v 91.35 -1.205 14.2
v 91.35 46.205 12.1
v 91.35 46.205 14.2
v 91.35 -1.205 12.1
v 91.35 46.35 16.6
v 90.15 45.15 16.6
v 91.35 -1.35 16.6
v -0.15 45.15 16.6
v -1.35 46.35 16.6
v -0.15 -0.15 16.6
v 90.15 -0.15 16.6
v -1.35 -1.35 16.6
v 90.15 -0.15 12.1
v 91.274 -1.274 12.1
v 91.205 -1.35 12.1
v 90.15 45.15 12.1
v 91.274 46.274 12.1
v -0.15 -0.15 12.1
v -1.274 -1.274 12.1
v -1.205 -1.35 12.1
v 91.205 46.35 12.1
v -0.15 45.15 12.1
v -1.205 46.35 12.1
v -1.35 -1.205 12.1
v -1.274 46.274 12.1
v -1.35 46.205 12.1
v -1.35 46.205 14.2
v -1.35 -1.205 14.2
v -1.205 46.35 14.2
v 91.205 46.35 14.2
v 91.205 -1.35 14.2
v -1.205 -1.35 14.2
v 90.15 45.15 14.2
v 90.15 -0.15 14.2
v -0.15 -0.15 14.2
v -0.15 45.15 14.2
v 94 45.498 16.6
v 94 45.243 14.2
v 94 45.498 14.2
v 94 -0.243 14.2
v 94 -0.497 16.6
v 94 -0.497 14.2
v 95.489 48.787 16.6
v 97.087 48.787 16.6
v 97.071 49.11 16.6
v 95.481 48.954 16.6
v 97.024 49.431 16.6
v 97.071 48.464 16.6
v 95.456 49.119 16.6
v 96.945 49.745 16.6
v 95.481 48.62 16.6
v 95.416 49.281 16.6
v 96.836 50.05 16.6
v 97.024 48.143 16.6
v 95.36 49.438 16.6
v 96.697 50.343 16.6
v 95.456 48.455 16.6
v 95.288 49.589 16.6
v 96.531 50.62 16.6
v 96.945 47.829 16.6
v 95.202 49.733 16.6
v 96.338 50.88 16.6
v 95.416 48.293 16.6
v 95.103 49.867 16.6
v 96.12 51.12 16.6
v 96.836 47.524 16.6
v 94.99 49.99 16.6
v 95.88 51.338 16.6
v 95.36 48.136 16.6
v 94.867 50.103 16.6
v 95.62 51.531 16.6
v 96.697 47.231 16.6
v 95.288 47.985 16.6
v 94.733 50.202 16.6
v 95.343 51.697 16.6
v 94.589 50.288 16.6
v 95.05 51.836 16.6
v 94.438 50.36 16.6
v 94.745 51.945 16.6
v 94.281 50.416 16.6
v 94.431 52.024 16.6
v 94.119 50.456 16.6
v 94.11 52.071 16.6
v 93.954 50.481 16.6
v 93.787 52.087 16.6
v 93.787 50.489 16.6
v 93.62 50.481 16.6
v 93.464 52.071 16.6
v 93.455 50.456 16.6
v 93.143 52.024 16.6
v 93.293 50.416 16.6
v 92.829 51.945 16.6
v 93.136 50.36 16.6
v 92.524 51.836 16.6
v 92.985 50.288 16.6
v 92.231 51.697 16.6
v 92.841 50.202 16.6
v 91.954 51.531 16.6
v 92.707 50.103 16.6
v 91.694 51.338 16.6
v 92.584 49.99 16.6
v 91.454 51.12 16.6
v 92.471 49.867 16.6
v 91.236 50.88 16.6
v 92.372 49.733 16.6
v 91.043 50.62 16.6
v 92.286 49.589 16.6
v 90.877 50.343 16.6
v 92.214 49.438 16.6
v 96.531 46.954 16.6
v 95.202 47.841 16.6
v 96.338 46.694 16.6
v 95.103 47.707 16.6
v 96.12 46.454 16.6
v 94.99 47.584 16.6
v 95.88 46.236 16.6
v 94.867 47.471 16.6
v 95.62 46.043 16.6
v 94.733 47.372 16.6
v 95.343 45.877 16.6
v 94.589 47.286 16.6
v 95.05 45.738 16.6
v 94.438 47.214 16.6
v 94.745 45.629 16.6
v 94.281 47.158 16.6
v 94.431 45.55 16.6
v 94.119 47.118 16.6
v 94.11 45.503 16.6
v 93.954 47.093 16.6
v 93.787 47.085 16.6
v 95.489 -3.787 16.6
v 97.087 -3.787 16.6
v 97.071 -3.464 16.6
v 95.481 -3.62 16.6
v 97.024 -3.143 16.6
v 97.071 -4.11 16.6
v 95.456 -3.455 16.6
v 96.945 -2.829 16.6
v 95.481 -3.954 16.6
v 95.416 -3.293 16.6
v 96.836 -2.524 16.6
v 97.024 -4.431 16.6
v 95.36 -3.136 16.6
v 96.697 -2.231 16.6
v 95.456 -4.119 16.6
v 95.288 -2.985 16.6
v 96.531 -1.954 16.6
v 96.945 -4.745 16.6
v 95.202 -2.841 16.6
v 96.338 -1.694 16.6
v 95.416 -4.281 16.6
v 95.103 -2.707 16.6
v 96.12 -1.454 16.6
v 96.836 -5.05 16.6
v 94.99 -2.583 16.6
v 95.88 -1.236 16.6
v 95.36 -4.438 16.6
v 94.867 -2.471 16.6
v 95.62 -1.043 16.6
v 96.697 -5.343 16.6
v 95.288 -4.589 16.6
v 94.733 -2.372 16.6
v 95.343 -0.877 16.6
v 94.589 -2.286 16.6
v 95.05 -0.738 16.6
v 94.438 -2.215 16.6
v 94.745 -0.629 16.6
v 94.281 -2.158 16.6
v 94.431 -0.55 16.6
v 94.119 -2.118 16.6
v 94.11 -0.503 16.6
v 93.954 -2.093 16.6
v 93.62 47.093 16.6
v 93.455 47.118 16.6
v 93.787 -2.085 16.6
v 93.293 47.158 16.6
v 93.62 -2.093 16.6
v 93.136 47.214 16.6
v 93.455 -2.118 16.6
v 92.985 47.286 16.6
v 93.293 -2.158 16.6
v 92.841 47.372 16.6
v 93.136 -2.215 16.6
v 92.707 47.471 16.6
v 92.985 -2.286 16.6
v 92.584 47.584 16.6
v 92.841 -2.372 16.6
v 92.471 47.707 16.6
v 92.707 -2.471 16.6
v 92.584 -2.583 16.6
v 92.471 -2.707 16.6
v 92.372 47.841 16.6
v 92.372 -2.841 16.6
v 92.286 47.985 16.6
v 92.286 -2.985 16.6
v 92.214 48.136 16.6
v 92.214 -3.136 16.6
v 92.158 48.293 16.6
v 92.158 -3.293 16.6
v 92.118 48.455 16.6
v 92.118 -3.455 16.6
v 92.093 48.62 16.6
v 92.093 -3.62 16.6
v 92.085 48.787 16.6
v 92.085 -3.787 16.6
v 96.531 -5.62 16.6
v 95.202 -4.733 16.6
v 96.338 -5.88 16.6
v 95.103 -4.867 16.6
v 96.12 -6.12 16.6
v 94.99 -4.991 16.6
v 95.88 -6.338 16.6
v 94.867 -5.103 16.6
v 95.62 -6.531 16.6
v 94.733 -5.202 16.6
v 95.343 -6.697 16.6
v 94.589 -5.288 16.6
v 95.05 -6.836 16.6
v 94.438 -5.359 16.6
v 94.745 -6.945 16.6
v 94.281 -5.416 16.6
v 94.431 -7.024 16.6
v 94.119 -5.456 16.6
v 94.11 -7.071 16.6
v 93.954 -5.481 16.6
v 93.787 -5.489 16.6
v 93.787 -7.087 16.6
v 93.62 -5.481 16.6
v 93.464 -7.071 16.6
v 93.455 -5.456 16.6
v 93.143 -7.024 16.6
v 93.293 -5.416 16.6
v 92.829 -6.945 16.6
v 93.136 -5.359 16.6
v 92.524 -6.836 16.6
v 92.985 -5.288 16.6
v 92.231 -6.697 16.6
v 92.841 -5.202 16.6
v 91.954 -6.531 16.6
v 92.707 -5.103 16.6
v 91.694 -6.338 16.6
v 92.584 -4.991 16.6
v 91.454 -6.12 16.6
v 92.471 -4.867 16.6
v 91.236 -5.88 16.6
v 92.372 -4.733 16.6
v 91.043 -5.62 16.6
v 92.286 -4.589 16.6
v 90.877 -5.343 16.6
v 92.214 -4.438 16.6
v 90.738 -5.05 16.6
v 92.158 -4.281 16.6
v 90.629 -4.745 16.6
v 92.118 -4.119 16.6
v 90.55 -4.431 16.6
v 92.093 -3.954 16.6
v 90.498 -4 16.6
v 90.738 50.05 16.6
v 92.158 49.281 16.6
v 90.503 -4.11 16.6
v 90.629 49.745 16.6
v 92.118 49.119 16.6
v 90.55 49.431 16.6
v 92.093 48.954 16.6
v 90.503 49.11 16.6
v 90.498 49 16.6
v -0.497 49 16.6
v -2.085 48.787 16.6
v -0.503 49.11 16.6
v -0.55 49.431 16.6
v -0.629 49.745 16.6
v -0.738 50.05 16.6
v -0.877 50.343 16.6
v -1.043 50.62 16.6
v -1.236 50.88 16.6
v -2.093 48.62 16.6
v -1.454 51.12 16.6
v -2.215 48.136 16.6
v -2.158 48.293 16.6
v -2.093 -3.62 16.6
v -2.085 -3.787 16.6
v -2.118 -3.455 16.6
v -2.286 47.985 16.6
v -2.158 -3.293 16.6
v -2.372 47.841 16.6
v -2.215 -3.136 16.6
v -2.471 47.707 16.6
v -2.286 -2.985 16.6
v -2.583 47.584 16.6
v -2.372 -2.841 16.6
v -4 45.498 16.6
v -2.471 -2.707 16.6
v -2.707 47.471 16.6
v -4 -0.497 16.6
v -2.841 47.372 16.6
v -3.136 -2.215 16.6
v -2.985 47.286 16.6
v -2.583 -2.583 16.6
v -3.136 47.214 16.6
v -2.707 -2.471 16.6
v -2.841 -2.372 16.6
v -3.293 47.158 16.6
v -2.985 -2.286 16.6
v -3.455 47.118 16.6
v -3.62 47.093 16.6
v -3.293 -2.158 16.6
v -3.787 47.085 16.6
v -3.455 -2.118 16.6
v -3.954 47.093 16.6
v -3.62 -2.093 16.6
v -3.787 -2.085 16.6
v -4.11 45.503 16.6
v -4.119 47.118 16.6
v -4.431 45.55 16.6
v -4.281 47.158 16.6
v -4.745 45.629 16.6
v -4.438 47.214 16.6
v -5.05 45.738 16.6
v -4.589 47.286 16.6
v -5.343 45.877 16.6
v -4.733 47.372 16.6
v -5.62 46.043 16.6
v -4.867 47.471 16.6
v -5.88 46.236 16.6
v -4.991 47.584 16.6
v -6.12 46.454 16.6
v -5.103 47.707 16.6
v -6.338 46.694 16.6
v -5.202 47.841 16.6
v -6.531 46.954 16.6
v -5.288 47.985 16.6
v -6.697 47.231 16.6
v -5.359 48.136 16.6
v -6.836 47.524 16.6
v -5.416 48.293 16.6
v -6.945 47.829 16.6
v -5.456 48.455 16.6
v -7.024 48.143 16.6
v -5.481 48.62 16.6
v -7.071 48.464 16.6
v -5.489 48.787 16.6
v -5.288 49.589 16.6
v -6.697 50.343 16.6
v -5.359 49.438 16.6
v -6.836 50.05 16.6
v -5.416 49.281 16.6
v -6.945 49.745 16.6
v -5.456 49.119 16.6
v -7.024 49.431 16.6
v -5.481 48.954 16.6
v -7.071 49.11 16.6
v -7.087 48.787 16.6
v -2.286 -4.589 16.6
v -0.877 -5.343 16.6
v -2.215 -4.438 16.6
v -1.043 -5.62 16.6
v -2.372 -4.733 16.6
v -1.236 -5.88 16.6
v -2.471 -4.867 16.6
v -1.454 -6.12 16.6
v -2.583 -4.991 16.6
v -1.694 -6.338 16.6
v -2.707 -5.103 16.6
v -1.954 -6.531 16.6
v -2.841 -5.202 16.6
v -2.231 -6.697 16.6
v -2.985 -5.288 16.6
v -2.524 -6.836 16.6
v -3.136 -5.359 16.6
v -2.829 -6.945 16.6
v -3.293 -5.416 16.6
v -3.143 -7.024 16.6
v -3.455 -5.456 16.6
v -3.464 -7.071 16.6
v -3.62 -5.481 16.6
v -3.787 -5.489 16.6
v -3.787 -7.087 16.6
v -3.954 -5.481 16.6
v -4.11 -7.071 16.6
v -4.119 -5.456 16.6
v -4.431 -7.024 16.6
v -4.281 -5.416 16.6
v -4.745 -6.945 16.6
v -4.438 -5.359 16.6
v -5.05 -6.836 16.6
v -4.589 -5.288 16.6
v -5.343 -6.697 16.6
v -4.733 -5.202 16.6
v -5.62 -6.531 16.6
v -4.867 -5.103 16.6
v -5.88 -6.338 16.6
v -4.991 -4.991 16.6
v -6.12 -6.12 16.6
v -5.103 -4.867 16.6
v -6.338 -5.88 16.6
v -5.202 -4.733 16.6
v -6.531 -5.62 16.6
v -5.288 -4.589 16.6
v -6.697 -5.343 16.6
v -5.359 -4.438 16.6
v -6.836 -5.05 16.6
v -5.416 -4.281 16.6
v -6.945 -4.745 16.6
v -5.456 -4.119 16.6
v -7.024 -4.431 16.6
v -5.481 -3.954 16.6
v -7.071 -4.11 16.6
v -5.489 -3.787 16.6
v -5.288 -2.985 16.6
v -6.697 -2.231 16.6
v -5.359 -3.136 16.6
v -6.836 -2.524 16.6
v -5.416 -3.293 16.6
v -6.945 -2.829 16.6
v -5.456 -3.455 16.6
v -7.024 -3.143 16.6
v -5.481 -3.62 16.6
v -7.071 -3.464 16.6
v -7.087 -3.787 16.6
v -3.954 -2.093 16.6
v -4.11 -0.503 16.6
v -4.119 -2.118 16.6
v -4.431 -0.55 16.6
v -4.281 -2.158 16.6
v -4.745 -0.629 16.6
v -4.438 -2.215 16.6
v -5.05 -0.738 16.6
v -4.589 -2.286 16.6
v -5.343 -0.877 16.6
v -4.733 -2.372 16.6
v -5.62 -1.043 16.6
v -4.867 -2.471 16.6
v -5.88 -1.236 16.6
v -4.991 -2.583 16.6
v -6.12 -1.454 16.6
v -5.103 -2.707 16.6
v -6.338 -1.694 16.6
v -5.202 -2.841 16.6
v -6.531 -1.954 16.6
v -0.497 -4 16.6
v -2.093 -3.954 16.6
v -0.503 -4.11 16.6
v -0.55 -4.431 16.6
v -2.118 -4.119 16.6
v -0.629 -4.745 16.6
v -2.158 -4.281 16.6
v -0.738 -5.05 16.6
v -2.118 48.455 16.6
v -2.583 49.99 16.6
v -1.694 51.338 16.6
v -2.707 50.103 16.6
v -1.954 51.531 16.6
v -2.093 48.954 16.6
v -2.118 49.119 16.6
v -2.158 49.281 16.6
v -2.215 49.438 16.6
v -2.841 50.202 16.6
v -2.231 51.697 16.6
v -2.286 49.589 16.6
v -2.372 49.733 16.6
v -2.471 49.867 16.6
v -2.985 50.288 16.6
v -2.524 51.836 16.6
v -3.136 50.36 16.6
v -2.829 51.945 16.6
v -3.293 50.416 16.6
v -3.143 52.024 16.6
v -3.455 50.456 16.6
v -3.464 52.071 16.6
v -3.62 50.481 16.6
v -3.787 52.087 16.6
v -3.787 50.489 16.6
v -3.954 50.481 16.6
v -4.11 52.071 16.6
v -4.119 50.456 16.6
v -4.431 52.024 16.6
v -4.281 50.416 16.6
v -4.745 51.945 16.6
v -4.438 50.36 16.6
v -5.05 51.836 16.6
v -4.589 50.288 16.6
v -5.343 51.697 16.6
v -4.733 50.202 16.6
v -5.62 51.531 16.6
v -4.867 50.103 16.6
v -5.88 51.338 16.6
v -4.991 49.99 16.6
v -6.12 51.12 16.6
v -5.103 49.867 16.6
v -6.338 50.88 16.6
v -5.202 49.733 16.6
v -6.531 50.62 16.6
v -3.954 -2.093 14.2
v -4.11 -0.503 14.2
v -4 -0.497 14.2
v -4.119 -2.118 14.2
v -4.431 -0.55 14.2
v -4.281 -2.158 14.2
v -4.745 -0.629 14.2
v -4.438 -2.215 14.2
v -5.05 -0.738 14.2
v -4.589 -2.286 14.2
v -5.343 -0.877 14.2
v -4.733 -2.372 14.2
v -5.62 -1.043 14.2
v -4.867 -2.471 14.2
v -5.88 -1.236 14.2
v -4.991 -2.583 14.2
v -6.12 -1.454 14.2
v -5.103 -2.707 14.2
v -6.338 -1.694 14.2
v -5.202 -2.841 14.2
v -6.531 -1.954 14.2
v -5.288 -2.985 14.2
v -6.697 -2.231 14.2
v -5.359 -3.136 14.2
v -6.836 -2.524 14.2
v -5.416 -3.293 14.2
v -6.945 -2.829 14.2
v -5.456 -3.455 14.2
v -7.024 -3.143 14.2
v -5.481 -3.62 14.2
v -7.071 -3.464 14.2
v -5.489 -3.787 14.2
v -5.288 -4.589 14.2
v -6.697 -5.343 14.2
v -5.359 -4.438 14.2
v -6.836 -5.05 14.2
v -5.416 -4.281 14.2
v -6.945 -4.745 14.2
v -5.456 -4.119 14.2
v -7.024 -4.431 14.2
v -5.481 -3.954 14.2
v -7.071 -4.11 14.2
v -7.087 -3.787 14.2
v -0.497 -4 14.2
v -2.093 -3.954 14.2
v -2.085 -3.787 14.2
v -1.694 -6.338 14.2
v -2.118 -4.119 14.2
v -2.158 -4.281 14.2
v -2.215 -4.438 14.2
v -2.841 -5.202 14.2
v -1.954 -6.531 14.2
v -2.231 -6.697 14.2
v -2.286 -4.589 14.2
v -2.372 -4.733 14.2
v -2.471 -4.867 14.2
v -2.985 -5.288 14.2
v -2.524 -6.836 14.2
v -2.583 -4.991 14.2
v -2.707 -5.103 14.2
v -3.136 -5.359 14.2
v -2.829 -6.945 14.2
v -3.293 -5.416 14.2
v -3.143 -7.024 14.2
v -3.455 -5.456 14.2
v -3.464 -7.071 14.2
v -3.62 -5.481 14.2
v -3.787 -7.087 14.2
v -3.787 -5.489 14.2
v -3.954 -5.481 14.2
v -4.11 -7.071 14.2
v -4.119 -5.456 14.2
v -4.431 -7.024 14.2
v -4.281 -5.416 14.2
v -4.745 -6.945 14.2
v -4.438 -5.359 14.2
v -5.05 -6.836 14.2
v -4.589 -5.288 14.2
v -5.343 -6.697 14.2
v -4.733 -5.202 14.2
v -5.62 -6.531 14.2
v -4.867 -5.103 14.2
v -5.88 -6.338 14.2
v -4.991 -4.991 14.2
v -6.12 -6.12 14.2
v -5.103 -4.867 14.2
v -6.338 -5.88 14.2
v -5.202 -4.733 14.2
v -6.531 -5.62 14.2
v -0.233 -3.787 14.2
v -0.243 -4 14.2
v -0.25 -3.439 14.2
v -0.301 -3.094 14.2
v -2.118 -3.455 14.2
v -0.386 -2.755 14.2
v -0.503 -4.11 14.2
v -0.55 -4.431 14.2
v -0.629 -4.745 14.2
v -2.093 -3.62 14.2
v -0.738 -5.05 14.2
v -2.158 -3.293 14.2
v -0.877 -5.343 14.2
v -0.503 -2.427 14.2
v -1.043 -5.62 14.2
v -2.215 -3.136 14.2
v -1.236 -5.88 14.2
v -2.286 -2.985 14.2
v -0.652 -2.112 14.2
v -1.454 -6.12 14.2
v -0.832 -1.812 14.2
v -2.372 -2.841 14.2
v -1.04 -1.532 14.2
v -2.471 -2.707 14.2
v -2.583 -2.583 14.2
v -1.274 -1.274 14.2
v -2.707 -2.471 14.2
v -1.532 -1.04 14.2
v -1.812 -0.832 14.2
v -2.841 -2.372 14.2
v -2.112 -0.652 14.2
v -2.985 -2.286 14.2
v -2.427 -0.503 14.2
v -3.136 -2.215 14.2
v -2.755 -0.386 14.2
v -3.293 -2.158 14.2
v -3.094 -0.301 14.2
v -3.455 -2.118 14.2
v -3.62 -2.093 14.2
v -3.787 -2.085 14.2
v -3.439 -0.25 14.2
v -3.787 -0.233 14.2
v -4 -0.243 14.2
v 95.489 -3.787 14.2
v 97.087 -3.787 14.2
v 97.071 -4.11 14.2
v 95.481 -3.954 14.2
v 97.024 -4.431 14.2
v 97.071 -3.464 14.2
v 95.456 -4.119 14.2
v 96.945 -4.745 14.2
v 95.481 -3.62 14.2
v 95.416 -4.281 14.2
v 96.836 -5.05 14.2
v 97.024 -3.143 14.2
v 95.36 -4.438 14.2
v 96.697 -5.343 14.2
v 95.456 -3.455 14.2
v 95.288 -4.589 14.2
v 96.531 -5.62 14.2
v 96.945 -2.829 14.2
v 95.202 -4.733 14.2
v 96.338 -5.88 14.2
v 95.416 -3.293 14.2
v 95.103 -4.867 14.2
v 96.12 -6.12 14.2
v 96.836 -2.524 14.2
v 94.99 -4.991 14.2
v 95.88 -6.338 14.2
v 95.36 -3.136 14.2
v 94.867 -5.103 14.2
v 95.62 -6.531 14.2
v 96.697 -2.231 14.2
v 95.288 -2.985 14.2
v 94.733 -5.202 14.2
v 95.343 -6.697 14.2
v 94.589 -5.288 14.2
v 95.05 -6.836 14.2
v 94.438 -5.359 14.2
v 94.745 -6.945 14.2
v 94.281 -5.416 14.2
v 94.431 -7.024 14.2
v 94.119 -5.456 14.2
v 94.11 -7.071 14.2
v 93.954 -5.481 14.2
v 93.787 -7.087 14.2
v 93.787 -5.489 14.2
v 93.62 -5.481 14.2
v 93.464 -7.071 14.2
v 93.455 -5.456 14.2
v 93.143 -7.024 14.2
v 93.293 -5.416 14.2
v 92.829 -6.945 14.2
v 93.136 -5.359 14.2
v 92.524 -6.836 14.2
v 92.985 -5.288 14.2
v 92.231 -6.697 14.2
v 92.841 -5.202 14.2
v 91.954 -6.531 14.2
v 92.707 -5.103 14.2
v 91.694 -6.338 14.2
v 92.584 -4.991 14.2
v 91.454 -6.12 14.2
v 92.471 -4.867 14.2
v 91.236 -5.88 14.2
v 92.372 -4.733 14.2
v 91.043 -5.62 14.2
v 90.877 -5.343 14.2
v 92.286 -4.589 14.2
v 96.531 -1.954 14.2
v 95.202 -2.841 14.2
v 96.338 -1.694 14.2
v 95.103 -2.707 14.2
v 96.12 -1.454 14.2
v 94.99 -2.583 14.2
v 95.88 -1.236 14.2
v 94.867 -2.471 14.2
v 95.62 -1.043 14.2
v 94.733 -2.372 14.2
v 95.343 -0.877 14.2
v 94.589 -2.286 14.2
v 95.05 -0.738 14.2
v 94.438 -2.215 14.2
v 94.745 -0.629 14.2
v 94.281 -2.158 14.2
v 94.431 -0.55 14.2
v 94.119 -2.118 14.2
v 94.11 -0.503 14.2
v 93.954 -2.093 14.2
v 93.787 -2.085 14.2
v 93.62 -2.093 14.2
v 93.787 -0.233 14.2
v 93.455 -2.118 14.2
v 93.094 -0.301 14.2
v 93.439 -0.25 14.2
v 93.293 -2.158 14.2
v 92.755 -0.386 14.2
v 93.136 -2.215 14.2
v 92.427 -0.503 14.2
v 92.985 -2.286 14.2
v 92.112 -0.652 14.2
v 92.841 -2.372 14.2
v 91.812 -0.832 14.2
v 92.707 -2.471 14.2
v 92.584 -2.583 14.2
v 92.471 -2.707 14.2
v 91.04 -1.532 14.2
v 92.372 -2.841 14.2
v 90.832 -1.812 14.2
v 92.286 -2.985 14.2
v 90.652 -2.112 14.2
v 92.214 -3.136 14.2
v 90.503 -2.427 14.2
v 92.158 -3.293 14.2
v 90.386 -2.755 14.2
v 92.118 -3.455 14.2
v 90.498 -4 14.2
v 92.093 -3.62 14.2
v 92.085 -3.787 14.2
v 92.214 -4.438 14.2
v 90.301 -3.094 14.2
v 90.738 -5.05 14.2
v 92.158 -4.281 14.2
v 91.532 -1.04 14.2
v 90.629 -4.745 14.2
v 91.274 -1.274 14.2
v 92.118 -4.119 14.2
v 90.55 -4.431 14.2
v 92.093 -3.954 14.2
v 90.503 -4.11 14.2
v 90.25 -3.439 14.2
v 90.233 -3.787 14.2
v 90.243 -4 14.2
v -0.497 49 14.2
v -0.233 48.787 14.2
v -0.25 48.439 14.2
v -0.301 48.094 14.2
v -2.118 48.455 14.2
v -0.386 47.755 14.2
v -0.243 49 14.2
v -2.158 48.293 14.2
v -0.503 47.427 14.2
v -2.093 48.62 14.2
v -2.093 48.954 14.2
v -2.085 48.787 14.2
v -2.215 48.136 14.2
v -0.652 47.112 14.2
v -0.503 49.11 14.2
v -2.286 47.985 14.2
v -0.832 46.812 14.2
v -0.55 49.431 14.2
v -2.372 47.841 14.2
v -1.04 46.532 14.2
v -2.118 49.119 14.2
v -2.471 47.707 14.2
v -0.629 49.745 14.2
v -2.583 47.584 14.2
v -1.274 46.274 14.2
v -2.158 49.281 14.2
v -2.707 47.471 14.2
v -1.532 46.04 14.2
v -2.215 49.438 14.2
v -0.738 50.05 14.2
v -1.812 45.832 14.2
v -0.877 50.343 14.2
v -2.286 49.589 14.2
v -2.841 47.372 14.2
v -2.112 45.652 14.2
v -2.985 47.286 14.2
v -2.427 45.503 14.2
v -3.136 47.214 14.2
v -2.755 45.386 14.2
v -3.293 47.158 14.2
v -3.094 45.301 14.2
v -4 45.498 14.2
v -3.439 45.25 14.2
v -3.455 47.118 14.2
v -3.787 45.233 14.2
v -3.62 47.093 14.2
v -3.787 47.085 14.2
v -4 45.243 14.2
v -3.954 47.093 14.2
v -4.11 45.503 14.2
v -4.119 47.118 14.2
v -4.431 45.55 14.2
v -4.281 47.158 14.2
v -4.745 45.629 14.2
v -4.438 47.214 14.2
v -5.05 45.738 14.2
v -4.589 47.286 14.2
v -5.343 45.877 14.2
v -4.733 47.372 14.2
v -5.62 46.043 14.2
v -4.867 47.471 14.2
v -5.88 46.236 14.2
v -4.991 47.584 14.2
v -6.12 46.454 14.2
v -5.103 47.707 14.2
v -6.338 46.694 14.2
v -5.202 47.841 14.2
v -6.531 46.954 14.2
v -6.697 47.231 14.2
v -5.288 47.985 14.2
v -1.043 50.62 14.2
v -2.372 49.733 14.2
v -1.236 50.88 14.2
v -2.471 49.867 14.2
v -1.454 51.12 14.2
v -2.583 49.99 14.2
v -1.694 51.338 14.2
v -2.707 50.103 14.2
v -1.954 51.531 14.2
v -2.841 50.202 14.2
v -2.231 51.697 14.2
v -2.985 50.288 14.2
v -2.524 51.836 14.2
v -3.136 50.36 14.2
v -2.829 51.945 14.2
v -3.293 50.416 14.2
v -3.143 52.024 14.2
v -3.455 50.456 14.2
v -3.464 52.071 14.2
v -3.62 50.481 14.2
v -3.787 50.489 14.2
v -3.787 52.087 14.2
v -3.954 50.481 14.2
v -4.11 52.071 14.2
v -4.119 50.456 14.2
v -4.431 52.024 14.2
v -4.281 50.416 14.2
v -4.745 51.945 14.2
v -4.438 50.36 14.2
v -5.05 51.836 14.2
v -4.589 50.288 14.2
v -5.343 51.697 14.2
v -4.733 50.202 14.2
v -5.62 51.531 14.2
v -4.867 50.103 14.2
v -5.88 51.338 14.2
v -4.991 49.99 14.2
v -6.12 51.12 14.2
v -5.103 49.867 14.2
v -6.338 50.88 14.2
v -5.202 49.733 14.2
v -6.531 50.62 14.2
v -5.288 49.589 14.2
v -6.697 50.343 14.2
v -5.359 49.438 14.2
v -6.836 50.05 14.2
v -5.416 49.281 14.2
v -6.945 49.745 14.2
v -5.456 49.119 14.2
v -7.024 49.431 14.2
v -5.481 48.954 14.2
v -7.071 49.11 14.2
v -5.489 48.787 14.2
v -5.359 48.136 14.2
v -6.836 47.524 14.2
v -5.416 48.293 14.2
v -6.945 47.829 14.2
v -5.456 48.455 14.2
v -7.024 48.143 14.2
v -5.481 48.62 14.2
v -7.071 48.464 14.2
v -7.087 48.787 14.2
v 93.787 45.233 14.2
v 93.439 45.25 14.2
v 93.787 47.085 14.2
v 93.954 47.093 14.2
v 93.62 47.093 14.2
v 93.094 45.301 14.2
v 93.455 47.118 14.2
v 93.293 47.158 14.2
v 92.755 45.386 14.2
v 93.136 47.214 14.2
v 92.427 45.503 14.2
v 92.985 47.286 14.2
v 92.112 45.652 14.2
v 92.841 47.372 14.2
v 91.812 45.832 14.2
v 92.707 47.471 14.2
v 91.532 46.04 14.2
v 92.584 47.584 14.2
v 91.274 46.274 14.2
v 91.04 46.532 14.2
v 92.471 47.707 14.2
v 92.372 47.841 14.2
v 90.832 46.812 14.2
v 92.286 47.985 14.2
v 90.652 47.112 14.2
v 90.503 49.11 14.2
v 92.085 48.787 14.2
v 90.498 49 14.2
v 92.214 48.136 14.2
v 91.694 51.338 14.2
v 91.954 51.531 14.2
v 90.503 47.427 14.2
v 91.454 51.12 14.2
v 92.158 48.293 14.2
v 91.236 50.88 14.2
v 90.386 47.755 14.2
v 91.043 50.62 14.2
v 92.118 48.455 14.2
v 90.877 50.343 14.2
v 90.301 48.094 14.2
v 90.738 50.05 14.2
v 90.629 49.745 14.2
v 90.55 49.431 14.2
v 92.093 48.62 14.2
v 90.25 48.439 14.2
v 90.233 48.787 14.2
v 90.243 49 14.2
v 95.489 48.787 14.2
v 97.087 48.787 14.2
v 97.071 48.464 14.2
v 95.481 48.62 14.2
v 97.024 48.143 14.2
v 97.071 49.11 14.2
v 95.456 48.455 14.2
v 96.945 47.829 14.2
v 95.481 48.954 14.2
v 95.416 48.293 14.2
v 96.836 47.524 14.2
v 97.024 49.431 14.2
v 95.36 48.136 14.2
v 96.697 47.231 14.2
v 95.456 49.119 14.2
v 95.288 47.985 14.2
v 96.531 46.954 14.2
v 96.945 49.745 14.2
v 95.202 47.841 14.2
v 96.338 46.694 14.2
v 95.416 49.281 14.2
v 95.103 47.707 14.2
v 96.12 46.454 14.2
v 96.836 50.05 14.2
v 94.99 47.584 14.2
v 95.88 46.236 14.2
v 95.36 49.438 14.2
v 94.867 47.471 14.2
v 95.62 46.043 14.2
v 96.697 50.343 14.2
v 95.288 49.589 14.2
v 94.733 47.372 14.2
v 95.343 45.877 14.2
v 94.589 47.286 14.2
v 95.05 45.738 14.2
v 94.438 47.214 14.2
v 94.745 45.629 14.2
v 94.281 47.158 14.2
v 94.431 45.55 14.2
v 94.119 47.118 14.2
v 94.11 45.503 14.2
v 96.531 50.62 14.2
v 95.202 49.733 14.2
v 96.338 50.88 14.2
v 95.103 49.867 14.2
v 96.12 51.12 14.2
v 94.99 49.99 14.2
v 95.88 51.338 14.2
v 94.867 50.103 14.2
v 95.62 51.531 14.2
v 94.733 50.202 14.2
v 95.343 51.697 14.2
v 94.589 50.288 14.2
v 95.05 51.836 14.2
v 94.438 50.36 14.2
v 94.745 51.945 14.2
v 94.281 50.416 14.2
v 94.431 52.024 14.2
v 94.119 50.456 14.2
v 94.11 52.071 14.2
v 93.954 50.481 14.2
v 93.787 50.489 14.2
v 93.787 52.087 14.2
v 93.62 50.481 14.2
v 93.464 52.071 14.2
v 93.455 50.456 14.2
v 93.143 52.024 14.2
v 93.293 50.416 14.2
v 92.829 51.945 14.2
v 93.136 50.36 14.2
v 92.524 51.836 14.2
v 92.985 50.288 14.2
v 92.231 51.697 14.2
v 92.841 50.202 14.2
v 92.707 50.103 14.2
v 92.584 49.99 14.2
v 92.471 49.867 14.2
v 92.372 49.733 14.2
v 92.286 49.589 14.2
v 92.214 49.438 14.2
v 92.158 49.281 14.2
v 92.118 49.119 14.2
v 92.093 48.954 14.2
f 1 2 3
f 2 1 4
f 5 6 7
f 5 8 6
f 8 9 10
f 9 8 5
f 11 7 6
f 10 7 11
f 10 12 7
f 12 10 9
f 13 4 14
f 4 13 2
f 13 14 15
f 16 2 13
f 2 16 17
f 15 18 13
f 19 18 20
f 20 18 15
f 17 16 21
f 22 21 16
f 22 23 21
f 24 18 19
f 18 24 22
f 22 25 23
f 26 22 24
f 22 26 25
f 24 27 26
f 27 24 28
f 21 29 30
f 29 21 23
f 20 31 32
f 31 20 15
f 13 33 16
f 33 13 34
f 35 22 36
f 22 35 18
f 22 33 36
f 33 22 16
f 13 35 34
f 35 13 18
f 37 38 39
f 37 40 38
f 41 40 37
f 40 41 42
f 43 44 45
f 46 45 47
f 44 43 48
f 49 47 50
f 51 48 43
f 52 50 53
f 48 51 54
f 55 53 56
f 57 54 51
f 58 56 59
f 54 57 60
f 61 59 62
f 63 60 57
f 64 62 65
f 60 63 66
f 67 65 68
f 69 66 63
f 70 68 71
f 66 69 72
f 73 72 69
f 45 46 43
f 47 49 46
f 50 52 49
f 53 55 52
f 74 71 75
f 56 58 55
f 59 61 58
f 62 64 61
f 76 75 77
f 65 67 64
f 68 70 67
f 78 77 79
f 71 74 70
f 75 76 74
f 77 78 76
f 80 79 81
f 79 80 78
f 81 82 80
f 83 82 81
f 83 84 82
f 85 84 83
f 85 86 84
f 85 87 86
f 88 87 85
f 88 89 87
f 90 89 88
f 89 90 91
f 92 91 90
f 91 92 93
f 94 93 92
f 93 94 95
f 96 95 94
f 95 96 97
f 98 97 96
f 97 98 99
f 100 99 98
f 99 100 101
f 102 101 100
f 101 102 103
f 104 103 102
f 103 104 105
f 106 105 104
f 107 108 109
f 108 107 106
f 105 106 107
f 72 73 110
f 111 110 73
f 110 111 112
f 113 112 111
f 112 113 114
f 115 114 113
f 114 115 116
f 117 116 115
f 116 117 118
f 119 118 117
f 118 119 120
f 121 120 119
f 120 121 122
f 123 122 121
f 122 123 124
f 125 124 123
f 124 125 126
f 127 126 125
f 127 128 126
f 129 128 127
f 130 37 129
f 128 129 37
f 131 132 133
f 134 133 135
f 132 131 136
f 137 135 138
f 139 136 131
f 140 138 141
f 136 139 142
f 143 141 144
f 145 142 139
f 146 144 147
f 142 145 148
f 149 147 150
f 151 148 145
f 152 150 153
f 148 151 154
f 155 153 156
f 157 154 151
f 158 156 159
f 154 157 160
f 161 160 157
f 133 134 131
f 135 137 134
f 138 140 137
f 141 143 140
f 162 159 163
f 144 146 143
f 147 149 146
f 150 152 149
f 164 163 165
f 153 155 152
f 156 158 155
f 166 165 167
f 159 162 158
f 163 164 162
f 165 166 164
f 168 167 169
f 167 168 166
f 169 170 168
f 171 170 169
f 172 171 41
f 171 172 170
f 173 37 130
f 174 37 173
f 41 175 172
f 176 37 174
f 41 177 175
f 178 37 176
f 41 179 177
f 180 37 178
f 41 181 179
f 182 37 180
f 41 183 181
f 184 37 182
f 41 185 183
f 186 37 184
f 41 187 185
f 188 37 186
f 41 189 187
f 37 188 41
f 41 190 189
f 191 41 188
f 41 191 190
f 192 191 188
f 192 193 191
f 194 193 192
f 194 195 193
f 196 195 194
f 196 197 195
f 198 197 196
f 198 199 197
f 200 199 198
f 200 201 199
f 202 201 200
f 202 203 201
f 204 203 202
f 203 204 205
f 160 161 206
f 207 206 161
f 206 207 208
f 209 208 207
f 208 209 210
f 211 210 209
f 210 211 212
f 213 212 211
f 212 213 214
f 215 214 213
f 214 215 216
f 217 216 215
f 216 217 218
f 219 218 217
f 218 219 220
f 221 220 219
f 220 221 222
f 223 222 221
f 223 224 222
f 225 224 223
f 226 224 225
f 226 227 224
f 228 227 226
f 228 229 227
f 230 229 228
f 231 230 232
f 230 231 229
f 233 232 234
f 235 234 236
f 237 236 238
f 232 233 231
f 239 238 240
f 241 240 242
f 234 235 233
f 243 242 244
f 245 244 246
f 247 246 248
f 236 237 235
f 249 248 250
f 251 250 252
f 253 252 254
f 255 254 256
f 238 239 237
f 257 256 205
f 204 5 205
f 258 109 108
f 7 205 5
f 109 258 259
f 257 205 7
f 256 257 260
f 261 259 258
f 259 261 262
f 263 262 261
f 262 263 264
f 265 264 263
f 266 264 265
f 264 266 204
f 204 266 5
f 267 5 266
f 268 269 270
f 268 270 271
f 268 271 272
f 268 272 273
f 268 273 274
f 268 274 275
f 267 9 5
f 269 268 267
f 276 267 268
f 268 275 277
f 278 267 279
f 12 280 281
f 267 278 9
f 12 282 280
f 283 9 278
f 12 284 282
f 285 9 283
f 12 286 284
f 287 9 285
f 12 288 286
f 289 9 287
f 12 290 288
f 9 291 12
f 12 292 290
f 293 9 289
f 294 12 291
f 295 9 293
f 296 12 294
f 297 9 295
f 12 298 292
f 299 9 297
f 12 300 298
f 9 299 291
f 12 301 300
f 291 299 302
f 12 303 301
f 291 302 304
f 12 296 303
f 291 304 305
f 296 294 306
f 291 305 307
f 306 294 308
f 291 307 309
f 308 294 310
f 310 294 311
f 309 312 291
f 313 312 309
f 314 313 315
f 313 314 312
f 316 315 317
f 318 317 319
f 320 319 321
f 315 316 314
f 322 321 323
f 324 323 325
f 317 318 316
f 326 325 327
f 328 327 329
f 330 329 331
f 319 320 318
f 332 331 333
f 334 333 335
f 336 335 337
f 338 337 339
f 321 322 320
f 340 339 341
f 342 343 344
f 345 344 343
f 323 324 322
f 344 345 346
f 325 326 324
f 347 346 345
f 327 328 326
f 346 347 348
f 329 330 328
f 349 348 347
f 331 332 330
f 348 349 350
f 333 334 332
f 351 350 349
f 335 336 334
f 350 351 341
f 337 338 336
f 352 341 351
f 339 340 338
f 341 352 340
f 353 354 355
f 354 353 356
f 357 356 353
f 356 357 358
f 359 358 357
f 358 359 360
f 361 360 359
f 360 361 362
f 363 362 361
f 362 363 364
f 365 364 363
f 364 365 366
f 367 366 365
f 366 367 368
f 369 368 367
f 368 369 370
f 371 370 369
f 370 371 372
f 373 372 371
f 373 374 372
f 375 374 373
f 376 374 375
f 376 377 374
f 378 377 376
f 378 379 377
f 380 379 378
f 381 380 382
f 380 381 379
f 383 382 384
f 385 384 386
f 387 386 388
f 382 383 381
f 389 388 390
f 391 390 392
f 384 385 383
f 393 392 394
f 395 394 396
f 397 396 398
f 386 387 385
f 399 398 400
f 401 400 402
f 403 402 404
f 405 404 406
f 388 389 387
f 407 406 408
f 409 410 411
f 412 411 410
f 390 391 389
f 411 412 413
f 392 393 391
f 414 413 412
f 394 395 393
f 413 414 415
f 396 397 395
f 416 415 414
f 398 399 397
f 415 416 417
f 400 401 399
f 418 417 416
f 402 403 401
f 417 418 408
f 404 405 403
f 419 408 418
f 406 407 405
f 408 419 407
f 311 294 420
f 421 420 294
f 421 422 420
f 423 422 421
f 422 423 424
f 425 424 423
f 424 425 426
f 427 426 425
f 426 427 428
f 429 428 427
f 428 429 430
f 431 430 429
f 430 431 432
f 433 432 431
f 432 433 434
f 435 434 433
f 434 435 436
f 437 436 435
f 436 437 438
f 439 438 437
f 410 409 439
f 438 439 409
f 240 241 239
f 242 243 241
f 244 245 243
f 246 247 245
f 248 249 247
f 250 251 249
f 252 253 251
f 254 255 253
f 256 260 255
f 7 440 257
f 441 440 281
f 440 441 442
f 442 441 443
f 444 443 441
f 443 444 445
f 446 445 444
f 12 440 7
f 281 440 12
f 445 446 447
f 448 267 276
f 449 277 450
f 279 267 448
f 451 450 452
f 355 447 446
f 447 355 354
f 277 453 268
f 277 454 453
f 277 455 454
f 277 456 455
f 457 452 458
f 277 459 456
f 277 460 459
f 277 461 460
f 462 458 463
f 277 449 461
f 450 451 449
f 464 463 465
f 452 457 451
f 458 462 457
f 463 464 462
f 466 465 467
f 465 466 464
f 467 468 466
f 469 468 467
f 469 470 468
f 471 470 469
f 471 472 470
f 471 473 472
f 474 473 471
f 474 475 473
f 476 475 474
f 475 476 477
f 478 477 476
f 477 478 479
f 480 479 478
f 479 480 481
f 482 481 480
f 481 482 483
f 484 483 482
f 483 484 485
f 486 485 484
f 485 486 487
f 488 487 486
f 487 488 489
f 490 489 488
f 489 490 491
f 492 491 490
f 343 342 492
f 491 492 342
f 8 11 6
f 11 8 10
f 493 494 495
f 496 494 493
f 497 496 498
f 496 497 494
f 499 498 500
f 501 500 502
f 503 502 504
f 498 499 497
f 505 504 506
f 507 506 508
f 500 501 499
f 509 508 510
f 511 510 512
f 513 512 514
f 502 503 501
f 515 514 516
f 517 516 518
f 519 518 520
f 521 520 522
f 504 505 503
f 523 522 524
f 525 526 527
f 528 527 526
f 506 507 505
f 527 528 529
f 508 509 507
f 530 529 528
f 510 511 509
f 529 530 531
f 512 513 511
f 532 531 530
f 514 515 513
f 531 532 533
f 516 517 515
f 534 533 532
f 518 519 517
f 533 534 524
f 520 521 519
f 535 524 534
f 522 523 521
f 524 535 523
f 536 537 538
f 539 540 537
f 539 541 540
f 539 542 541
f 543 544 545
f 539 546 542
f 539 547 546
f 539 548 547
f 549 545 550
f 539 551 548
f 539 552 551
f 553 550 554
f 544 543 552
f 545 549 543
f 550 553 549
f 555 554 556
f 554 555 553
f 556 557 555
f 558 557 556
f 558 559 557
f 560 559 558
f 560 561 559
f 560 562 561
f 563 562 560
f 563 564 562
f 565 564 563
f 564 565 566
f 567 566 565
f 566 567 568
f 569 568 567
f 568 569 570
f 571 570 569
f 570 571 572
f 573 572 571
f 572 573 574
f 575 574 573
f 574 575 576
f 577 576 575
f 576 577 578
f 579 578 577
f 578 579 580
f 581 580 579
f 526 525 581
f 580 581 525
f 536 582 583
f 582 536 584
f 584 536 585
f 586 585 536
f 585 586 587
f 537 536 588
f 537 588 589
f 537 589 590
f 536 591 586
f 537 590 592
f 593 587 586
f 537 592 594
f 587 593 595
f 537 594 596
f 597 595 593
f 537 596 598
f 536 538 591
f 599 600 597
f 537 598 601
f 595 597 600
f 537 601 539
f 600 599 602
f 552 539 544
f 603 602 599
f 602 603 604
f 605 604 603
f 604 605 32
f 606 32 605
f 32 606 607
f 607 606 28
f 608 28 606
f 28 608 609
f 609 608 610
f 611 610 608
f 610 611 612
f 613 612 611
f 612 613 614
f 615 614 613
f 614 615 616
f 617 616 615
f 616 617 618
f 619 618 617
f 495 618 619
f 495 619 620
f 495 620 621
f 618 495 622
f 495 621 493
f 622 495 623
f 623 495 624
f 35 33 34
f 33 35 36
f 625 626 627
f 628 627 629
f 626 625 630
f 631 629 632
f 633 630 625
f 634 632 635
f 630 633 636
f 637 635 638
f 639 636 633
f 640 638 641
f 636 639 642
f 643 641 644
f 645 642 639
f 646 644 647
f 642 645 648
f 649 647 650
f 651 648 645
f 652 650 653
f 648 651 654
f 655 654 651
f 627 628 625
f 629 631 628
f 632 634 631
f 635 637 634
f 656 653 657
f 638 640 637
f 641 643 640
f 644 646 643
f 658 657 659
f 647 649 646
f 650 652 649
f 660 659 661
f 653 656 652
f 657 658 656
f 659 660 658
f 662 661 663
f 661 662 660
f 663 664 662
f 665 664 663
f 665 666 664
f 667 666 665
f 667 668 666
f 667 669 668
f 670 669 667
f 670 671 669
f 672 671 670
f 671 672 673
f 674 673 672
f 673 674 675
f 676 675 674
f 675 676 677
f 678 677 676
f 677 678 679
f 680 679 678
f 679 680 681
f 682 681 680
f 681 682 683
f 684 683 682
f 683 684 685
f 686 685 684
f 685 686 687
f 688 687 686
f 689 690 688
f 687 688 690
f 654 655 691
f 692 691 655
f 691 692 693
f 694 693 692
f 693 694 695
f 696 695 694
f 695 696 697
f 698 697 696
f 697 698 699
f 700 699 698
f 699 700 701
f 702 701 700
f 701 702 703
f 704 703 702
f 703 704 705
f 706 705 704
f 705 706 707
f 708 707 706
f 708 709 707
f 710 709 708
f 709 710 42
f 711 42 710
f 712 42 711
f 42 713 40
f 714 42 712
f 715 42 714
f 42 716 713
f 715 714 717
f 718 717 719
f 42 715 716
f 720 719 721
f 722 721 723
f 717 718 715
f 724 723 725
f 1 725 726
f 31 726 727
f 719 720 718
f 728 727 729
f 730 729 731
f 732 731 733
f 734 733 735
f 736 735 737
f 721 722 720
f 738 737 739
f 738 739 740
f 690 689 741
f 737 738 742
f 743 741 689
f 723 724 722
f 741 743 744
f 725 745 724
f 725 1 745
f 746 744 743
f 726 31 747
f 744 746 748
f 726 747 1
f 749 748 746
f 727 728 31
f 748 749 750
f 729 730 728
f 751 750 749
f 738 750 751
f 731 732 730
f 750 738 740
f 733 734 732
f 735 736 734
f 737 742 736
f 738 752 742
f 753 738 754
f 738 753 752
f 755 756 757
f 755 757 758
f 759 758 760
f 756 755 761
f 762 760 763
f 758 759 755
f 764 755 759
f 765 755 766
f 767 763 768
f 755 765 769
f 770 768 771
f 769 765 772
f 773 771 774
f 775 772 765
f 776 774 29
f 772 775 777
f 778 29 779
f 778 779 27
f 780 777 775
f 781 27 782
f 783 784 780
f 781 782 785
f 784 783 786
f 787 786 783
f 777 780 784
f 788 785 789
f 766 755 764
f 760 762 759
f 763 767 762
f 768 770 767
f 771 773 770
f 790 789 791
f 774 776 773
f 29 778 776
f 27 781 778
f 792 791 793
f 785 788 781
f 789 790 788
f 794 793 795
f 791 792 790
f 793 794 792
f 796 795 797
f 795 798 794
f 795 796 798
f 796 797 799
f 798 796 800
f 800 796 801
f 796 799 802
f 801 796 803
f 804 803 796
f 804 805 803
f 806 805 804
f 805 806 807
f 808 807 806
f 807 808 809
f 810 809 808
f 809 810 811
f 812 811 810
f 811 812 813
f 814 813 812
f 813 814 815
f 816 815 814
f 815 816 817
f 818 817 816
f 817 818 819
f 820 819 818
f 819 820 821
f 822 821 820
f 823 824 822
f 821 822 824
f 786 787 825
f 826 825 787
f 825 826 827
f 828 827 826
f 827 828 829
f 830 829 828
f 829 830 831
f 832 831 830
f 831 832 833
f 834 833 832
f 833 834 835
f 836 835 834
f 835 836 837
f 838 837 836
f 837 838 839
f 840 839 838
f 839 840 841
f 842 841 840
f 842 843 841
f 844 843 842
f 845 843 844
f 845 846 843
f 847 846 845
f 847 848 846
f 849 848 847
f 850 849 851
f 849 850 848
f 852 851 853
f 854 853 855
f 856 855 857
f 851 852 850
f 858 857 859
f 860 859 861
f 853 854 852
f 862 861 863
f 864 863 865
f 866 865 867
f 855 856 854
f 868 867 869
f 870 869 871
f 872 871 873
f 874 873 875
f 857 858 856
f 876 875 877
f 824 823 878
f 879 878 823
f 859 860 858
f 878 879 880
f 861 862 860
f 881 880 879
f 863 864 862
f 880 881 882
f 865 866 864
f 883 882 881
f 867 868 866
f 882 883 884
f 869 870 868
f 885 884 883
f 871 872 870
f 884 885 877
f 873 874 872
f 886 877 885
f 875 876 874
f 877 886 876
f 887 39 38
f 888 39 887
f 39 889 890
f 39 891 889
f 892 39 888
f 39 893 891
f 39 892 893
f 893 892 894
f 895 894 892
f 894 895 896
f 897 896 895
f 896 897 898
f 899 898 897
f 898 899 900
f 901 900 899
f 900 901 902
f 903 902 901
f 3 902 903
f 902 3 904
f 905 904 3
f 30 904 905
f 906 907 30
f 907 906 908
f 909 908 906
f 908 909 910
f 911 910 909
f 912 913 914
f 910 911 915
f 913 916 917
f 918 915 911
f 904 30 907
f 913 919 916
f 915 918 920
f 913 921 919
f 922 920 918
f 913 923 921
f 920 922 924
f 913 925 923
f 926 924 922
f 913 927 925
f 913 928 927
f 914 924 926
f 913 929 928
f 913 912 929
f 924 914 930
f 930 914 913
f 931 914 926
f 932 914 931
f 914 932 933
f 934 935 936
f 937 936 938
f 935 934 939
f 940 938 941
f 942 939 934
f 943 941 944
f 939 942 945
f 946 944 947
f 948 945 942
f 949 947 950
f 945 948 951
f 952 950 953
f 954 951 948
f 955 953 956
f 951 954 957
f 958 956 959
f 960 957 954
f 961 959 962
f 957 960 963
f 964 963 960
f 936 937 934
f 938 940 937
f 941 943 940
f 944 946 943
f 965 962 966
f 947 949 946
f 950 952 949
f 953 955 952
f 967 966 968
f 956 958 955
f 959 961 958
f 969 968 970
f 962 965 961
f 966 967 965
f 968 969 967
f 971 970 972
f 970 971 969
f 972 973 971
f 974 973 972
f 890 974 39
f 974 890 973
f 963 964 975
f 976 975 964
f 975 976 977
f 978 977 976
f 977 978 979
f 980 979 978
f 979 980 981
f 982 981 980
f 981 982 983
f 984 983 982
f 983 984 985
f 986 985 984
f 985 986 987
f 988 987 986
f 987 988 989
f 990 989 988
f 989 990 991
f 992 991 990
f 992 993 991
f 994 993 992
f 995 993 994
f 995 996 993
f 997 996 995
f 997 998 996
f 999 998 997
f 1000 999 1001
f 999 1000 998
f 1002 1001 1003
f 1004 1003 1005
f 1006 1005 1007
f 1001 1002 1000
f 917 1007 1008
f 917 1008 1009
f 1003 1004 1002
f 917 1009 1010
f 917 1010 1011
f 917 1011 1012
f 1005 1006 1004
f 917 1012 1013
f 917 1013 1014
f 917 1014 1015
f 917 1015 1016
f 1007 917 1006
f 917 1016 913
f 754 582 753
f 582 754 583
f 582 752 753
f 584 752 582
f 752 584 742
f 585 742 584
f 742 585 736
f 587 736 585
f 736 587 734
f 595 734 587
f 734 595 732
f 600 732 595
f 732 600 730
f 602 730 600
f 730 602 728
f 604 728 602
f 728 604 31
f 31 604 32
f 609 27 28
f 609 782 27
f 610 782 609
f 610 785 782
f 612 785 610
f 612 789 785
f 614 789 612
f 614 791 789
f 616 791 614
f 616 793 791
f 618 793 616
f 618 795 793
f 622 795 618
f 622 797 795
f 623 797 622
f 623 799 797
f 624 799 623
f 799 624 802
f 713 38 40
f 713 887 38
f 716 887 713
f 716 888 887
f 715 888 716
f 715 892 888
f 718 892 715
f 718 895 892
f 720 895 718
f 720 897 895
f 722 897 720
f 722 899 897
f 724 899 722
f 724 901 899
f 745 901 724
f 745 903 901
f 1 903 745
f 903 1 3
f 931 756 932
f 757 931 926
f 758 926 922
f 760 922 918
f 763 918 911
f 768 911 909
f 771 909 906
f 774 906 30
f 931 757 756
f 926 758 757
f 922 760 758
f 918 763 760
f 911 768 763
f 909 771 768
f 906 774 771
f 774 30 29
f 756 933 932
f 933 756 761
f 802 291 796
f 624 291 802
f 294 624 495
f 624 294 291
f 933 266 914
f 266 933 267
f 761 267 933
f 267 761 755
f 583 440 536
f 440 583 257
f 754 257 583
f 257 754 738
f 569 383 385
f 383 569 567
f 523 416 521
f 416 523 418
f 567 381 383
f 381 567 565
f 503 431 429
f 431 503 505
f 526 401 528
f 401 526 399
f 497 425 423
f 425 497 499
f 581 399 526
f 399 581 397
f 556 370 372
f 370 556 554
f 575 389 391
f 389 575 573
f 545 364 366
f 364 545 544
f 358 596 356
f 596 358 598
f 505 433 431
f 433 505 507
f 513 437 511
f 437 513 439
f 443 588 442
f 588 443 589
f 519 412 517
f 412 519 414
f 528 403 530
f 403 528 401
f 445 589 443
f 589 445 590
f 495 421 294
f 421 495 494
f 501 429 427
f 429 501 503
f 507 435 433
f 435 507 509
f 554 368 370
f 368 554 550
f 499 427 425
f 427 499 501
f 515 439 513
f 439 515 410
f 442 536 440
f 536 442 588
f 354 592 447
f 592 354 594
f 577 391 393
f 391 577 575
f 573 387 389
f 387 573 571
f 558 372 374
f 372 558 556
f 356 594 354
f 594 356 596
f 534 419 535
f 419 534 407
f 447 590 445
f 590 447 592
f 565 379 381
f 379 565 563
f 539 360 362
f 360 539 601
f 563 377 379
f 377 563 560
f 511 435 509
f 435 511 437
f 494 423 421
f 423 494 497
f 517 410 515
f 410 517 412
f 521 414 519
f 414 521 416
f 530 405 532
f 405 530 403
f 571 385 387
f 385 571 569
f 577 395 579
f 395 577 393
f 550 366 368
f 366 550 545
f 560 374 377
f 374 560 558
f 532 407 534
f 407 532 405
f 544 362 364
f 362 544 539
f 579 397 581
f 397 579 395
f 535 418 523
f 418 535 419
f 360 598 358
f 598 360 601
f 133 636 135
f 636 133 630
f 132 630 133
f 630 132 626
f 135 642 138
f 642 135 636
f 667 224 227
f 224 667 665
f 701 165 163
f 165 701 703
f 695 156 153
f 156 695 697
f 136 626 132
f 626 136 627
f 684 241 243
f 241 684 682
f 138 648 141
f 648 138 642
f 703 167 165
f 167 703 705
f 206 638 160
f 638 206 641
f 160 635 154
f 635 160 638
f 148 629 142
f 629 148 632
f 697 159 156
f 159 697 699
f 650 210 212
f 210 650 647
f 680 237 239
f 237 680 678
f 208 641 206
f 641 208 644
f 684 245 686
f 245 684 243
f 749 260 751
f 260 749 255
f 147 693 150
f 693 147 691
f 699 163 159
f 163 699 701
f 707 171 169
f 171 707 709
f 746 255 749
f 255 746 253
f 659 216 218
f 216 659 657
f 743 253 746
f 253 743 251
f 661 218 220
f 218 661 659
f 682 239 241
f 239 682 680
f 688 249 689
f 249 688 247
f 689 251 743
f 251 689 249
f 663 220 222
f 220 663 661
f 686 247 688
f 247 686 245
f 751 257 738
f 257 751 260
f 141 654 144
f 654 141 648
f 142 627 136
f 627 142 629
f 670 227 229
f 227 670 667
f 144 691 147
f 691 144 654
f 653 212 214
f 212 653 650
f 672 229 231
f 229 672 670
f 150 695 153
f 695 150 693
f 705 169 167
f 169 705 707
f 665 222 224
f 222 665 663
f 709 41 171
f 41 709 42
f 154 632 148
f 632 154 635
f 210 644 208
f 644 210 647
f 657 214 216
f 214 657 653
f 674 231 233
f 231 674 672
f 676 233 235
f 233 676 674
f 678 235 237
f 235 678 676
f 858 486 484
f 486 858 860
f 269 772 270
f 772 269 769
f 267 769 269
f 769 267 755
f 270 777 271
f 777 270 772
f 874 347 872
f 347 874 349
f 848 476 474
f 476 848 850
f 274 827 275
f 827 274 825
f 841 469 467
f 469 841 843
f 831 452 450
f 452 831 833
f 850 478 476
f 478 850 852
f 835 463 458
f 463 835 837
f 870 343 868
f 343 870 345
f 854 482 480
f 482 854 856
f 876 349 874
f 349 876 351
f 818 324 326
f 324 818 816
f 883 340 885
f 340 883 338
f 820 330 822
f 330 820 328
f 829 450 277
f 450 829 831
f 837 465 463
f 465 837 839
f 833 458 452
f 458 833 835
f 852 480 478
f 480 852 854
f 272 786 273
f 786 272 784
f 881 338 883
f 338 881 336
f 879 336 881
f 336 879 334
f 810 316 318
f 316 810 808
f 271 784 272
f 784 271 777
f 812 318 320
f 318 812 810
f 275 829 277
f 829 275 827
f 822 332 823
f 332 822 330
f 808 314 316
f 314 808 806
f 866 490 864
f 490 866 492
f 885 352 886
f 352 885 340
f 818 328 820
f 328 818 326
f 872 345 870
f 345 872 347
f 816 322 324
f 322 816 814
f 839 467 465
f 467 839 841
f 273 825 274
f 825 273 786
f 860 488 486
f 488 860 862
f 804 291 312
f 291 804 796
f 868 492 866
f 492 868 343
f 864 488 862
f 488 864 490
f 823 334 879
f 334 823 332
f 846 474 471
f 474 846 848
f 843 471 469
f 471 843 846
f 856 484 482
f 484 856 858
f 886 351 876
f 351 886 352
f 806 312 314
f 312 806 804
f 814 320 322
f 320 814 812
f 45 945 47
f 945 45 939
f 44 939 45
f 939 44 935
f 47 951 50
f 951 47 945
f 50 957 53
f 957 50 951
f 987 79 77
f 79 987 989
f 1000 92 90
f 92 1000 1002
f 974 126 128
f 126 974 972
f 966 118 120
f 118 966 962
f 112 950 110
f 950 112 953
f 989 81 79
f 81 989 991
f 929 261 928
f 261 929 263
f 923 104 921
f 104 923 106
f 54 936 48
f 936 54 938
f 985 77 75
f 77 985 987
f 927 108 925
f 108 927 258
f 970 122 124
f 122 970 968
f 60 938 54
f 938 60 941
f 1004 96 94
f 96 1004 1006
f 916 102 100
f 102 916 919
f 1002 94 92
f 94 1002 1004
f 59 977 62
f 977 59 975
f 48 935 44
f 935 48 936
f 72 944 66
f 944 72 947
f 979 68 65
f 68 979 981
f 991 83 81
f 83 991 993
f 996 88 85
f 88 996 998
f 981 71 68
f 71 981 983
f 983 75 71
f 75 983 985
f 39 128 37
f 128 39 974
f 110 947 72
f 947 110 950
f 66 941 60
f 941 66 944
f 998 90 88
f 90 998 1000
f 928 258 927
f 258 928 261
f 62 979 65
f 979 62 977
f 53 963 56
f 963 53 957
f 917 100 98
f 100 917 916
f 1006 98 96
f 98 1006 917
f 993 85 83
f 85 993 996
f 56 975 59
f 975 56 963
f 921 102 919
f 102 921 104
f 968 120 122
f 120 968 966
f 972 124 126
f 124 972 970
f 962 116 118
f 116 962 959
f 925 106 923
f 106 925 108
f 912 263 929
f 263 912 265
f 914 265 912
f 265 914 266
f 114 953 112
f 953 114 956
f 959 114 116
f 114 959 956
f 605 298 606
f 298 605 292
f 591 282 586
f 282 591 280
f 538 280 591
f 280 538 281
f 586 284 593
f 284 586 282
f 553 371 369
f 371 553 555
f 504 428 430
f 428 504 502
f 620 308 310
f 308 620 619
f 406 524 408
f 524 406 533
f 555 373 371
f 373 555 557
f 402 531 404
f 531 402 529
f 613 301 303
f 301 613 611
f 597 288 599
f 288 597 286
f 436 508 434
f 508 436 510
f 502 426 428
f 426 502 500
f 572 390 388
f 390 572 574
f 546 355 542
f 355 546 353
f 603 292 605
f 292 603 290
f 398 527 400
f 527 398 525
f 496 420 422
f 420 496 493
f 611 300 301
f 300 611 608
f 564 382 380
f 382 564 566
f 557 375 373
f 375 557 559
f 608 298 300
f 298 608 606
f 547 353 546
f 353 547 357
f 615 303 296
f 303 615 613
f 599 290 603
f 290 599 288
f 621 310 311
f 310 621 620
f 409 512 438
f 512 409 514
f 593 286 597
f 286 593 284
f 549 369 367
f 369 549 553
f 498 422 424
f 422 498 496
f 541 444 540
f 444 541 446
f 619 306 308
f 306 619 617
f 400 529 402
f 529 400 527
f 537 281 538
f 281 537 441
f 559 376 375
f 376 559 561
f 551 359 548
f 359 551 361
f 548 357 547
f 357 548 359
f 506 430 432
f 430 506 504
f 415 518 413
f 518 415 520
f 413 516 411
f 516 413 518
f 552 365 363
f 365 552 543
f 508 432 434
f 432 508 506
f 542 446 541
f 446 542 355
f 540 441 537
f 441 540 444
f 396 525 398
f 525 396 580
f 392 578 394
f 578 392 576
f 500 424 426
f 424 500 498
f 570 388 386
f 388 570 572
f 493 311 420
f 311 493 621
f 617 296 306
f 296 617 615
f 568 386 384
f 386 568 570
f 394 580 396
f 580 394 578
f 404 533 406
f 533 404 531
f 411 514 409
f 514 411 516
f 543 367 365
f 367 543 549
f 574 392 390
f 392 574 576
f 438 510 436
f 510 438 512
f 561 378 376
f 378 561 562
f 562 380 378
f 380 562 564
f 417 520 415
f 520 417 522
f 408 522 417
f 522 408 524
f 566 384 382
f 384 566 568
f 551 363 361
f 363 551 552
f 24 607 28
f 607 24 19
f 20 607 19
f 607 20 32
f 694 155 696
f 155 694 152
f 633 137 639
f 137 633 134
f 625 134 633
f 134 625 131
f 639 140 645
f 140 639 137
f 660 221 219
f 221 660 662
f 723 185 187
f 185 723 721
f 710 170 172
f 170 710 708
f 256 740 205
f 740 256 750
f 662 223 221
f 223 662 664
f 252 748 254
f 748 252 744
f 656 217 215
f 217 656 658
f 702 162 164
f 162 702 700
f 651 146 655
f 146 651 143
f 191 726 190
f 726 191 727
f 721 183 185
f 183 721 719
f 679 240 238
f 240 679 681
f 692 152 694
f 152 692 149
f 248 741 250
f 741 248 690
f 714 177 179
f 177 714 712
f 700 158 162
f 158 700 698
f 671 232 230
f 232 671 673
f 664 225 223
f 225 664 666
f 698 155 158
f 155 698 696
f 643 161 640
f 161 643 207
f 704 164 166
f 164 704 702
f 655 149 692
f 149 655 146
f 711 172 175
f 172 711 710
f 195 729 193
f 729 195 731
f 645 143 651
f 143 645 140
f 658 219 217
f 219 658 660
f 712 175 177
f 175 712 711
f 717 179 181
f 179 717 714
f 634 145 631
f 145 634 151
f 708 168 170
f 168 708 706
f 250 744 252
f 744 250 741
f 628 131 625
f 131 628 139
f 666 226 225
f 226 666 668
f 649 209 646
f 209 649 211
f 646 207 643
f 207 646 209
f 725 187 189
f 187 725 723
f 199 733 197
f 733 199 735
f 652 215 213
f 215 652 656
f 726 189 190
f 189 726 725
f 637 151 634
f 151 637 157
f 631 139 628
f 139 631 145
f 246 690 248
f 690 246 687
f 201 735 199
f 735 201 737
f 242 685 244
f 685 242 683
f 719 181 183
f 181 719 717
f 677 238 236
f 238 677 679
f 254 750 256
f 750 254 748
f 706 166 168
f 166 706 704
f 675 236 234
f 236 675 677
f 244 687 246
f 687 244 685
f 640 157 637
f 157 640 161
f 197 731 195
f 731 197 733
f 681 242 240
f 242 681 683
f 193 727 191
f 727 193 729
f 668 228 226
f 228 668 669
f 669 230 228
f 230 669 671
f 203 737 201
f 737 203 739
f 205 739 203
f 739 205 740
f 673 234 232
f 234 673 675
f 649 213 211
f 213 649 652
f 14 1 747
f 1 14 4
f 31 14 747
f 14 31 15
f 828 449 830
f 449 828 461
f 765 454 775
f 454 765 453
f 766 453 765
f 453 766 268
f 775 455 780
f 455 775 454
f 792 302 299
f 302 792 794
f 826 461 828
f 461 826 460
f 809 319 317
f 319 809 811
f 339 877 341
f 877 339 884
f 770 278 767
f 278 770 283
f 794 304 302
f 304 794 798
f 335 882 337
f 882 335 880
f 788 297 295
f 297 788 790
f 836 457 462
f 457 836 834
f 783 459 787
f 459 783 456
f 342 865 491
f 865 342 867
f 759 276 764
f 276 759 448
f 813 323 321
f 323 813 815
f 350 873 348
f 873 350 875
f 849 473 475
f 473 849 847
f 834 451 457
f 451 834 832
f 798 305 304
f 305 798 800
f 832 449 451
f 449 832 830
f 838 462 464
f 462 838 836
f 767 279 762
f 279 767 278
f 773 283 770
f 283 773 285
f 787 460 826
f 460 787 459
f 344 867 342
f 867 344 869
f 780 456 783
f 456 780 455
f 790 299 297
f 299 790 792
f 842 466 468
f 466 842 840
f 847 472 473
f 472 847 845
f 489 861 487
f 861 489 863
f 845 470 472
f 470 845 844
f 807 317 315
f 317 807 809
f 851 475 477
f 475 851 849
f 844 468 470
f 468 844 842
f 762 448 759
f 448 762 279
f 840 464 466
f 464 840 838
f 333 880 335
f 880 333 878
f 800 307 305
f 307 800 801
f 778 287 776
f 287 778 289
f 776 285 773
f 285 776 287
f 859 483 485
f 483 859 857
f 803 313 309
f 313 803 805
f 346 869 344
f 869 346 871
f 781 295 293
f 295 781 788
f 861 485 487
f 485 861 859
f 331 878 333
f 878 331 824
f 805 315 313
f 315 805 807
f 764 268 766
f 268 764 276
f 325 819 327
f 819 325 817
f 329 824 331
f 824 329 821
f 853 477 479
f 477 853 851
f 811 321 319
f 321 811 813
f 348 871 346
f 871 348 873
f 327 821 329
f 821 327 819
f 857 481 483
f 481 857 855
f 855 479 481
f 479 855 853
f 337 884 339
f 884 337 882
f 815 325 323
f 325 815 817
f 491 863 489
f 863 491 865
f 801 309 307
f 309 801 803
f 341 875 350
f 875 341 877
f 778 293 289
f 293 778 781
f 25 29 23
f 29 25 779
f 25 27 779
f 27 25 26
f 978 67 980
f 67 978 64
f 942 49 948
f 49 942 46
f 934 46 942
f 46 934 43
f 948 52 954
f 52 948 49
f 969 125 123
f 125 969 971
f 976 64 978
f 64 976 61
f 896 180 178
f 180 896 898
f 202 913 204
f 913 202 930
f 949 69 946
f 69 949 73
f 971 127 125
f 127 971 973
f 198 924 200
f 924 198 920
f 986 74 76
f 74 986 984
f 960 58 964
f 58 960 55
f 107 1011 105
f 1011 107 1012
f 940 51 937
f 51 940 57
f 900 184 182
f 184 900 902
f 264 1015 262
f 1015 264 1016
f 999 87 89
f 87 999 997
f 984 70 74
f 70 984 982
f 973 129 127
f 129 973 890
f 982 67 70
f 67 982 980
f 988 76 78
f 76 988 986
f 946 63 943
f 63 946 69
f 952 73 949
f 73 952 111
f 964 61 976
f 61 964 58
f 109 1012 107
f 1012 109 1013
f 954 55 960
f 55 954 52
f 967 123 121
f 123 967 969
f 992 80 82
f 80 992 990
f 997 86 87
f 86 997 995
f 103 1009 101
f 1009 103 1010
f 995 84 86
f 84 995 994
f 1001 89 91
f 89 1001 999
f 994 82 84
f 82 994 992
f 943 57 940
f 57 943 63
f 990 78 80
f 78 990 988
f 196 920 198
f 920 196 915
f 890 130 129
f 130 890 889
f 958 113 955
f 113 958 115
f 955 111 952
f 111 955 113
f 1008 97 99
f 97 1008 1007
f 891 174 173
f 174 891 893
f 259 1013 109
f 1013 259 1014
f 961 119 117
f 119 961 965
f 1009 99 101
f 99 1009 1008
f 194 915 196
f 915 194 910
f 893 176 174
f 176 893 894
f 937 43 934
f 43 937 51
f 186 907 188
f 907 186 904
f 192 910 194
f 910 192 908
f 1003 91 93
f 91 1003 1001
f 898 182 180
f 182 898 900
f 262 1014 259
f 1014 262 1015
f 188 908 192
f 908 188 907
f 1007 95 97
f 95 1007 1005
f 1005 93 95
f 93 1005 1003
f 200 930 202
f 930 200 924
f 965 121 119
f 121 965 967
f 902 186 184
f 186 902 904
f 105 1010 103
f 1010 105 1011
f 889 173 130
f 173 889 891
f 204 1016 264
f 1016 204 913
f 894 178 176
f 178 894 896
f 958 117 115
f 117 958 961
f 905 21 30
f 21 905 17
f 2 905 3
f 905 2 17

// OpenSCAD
// body lid
difference() {
  union() {
    // body lid (lid_plate)
    multmatrix([[1, 0, 0, 45], [0, 1, 0, 22.5], [0, 0, 1, 14.2], [0, 0, 0, 1]]) translate([-49, -26.5, 0]) cube([98, 53, 2.4]);
    // add lid_lip (lip)
    multmatrix([[1, 0, 0, 45], [0, 1, 0, 22.5], [0, 0, 1, 12.1], [0, 0, 0, 1]]) difference() { translate([-46.35, -23.85, 0]) cube([92.7, 47.7, 4.5]); translate([0, 0, -1]) translate([-45.15, -22.65, 0]) cube([90.3, 45.3, 6.5]); }
    // add boss_1_pad (pad)
    multmatrix([[1, 0, 0, -3.787006], [0, 1, 0, -3.787006], [0, 0, 1, 14.2], [0, 0, 0, 1]]) cylinder(h=2.4, d=6.6, $fn=64);
    // add boss_2_pad (pad)
    multmatrix([[1, 0, 0, 93.787006], [0, 1, 0, -3.787006], [0, 0, 1, 14.2], [0, 0, 0, 1]]) cylinder(h=2.4, d=6.6, $fn=64);
    // add boss_3_pad (pad)
    multmatrix([[1, 0, 0, -3.787006], [0, 1, 0, 48.787006], [0, 0, 1, 14.2], [0, 0, 0, 1]]) cylinder(h=2.4, d=6.6, $fn=64);
    // add boss_4_pad (pad)
    multmatrix([[1, 0, 0, 93.787006], [0, 1, 0, 48.787006], [0, 0, 1, 14.2], [0, 0, 0, 1]]) cylinder(h=2.4, d=6.6, $fn=64);
  }
  // cut boss_1_lid_hole (screw_hole)
  multmatrix([[1, 0, 0, -3.787006], [0, 1, 0, -3.787006], [0, 0, 1, 13.2], [0, 0, 0, 1]]) cylinder(h=4.4, d=3.4041, $fn=64);
  // cut boss_1_lip_notch (lip_notch)
  multmatrix([[1, 0, 0, -3.787006], [0, 1, 0, -3.787006], [0, 0, 1, 11.1], [0, 0, 0, 1]]) cylinder(h=3.1, d=7.108563, $fn=64);
  // cut boss_2_lid_hole (screw_hole)
  multmatrix([[1, 0, 0, 93.787006], [0, 1, 0, -3.787006], [0, 0, 1, 13.2], [0, 0, 0, 1]]) cylinder(h=4.4, d=3.4041, $fn=64);
  // cut boss_2_lip_notch (lip_notch)
  multmatrix([[1, 0, 0, 93.787006], [0, 1, 0, -3.787006], [0, 0, 1, 11.1], [0, 0, 0, 1]]) cylinder(h=3.1, d=7.108563, $fn=64);
  // cut boss_3_lid_hole (screw_hole)
  multmatrix([[1, 0, 0, -3.787006], [0, 1, 0, 48.787006], [0, 0, 1, 13.2], [0, 0, 0, 1]]) cylinder(h=4.4, d=3.4041, $fn=64);
  // cut boss_3_lip_notch (lip_notch)
  multmatrix([[1, 0, 0, -3.787006], [0, 1, 0, 48.787006], [0, 0, 1, 11.1], [0, 0, 0, 1]]) cylinder(h=3.1, d=7.108563, $fn=64);
  // cut boss_4_lid_hole (screw_hole)
  multmatrix([[1, 0, 0, 93.787006], [0, 1, 0, 48.787006], [0, 0, 1, 13.2], [0, 0, 0, 1]]) cylinder(h=4.4, d=3.4041, $fn=64);
  // cut boss_4_lip_notch (lip_notch)
  multmatrix([[1, 0, 0, 93.787006], [0, 1, 0, 48.787006], [0, 0, 1, 11.1], [0, 0, 0, 1]]) cylinder(h=3.1, d=7.108563, $fn=64);
}
